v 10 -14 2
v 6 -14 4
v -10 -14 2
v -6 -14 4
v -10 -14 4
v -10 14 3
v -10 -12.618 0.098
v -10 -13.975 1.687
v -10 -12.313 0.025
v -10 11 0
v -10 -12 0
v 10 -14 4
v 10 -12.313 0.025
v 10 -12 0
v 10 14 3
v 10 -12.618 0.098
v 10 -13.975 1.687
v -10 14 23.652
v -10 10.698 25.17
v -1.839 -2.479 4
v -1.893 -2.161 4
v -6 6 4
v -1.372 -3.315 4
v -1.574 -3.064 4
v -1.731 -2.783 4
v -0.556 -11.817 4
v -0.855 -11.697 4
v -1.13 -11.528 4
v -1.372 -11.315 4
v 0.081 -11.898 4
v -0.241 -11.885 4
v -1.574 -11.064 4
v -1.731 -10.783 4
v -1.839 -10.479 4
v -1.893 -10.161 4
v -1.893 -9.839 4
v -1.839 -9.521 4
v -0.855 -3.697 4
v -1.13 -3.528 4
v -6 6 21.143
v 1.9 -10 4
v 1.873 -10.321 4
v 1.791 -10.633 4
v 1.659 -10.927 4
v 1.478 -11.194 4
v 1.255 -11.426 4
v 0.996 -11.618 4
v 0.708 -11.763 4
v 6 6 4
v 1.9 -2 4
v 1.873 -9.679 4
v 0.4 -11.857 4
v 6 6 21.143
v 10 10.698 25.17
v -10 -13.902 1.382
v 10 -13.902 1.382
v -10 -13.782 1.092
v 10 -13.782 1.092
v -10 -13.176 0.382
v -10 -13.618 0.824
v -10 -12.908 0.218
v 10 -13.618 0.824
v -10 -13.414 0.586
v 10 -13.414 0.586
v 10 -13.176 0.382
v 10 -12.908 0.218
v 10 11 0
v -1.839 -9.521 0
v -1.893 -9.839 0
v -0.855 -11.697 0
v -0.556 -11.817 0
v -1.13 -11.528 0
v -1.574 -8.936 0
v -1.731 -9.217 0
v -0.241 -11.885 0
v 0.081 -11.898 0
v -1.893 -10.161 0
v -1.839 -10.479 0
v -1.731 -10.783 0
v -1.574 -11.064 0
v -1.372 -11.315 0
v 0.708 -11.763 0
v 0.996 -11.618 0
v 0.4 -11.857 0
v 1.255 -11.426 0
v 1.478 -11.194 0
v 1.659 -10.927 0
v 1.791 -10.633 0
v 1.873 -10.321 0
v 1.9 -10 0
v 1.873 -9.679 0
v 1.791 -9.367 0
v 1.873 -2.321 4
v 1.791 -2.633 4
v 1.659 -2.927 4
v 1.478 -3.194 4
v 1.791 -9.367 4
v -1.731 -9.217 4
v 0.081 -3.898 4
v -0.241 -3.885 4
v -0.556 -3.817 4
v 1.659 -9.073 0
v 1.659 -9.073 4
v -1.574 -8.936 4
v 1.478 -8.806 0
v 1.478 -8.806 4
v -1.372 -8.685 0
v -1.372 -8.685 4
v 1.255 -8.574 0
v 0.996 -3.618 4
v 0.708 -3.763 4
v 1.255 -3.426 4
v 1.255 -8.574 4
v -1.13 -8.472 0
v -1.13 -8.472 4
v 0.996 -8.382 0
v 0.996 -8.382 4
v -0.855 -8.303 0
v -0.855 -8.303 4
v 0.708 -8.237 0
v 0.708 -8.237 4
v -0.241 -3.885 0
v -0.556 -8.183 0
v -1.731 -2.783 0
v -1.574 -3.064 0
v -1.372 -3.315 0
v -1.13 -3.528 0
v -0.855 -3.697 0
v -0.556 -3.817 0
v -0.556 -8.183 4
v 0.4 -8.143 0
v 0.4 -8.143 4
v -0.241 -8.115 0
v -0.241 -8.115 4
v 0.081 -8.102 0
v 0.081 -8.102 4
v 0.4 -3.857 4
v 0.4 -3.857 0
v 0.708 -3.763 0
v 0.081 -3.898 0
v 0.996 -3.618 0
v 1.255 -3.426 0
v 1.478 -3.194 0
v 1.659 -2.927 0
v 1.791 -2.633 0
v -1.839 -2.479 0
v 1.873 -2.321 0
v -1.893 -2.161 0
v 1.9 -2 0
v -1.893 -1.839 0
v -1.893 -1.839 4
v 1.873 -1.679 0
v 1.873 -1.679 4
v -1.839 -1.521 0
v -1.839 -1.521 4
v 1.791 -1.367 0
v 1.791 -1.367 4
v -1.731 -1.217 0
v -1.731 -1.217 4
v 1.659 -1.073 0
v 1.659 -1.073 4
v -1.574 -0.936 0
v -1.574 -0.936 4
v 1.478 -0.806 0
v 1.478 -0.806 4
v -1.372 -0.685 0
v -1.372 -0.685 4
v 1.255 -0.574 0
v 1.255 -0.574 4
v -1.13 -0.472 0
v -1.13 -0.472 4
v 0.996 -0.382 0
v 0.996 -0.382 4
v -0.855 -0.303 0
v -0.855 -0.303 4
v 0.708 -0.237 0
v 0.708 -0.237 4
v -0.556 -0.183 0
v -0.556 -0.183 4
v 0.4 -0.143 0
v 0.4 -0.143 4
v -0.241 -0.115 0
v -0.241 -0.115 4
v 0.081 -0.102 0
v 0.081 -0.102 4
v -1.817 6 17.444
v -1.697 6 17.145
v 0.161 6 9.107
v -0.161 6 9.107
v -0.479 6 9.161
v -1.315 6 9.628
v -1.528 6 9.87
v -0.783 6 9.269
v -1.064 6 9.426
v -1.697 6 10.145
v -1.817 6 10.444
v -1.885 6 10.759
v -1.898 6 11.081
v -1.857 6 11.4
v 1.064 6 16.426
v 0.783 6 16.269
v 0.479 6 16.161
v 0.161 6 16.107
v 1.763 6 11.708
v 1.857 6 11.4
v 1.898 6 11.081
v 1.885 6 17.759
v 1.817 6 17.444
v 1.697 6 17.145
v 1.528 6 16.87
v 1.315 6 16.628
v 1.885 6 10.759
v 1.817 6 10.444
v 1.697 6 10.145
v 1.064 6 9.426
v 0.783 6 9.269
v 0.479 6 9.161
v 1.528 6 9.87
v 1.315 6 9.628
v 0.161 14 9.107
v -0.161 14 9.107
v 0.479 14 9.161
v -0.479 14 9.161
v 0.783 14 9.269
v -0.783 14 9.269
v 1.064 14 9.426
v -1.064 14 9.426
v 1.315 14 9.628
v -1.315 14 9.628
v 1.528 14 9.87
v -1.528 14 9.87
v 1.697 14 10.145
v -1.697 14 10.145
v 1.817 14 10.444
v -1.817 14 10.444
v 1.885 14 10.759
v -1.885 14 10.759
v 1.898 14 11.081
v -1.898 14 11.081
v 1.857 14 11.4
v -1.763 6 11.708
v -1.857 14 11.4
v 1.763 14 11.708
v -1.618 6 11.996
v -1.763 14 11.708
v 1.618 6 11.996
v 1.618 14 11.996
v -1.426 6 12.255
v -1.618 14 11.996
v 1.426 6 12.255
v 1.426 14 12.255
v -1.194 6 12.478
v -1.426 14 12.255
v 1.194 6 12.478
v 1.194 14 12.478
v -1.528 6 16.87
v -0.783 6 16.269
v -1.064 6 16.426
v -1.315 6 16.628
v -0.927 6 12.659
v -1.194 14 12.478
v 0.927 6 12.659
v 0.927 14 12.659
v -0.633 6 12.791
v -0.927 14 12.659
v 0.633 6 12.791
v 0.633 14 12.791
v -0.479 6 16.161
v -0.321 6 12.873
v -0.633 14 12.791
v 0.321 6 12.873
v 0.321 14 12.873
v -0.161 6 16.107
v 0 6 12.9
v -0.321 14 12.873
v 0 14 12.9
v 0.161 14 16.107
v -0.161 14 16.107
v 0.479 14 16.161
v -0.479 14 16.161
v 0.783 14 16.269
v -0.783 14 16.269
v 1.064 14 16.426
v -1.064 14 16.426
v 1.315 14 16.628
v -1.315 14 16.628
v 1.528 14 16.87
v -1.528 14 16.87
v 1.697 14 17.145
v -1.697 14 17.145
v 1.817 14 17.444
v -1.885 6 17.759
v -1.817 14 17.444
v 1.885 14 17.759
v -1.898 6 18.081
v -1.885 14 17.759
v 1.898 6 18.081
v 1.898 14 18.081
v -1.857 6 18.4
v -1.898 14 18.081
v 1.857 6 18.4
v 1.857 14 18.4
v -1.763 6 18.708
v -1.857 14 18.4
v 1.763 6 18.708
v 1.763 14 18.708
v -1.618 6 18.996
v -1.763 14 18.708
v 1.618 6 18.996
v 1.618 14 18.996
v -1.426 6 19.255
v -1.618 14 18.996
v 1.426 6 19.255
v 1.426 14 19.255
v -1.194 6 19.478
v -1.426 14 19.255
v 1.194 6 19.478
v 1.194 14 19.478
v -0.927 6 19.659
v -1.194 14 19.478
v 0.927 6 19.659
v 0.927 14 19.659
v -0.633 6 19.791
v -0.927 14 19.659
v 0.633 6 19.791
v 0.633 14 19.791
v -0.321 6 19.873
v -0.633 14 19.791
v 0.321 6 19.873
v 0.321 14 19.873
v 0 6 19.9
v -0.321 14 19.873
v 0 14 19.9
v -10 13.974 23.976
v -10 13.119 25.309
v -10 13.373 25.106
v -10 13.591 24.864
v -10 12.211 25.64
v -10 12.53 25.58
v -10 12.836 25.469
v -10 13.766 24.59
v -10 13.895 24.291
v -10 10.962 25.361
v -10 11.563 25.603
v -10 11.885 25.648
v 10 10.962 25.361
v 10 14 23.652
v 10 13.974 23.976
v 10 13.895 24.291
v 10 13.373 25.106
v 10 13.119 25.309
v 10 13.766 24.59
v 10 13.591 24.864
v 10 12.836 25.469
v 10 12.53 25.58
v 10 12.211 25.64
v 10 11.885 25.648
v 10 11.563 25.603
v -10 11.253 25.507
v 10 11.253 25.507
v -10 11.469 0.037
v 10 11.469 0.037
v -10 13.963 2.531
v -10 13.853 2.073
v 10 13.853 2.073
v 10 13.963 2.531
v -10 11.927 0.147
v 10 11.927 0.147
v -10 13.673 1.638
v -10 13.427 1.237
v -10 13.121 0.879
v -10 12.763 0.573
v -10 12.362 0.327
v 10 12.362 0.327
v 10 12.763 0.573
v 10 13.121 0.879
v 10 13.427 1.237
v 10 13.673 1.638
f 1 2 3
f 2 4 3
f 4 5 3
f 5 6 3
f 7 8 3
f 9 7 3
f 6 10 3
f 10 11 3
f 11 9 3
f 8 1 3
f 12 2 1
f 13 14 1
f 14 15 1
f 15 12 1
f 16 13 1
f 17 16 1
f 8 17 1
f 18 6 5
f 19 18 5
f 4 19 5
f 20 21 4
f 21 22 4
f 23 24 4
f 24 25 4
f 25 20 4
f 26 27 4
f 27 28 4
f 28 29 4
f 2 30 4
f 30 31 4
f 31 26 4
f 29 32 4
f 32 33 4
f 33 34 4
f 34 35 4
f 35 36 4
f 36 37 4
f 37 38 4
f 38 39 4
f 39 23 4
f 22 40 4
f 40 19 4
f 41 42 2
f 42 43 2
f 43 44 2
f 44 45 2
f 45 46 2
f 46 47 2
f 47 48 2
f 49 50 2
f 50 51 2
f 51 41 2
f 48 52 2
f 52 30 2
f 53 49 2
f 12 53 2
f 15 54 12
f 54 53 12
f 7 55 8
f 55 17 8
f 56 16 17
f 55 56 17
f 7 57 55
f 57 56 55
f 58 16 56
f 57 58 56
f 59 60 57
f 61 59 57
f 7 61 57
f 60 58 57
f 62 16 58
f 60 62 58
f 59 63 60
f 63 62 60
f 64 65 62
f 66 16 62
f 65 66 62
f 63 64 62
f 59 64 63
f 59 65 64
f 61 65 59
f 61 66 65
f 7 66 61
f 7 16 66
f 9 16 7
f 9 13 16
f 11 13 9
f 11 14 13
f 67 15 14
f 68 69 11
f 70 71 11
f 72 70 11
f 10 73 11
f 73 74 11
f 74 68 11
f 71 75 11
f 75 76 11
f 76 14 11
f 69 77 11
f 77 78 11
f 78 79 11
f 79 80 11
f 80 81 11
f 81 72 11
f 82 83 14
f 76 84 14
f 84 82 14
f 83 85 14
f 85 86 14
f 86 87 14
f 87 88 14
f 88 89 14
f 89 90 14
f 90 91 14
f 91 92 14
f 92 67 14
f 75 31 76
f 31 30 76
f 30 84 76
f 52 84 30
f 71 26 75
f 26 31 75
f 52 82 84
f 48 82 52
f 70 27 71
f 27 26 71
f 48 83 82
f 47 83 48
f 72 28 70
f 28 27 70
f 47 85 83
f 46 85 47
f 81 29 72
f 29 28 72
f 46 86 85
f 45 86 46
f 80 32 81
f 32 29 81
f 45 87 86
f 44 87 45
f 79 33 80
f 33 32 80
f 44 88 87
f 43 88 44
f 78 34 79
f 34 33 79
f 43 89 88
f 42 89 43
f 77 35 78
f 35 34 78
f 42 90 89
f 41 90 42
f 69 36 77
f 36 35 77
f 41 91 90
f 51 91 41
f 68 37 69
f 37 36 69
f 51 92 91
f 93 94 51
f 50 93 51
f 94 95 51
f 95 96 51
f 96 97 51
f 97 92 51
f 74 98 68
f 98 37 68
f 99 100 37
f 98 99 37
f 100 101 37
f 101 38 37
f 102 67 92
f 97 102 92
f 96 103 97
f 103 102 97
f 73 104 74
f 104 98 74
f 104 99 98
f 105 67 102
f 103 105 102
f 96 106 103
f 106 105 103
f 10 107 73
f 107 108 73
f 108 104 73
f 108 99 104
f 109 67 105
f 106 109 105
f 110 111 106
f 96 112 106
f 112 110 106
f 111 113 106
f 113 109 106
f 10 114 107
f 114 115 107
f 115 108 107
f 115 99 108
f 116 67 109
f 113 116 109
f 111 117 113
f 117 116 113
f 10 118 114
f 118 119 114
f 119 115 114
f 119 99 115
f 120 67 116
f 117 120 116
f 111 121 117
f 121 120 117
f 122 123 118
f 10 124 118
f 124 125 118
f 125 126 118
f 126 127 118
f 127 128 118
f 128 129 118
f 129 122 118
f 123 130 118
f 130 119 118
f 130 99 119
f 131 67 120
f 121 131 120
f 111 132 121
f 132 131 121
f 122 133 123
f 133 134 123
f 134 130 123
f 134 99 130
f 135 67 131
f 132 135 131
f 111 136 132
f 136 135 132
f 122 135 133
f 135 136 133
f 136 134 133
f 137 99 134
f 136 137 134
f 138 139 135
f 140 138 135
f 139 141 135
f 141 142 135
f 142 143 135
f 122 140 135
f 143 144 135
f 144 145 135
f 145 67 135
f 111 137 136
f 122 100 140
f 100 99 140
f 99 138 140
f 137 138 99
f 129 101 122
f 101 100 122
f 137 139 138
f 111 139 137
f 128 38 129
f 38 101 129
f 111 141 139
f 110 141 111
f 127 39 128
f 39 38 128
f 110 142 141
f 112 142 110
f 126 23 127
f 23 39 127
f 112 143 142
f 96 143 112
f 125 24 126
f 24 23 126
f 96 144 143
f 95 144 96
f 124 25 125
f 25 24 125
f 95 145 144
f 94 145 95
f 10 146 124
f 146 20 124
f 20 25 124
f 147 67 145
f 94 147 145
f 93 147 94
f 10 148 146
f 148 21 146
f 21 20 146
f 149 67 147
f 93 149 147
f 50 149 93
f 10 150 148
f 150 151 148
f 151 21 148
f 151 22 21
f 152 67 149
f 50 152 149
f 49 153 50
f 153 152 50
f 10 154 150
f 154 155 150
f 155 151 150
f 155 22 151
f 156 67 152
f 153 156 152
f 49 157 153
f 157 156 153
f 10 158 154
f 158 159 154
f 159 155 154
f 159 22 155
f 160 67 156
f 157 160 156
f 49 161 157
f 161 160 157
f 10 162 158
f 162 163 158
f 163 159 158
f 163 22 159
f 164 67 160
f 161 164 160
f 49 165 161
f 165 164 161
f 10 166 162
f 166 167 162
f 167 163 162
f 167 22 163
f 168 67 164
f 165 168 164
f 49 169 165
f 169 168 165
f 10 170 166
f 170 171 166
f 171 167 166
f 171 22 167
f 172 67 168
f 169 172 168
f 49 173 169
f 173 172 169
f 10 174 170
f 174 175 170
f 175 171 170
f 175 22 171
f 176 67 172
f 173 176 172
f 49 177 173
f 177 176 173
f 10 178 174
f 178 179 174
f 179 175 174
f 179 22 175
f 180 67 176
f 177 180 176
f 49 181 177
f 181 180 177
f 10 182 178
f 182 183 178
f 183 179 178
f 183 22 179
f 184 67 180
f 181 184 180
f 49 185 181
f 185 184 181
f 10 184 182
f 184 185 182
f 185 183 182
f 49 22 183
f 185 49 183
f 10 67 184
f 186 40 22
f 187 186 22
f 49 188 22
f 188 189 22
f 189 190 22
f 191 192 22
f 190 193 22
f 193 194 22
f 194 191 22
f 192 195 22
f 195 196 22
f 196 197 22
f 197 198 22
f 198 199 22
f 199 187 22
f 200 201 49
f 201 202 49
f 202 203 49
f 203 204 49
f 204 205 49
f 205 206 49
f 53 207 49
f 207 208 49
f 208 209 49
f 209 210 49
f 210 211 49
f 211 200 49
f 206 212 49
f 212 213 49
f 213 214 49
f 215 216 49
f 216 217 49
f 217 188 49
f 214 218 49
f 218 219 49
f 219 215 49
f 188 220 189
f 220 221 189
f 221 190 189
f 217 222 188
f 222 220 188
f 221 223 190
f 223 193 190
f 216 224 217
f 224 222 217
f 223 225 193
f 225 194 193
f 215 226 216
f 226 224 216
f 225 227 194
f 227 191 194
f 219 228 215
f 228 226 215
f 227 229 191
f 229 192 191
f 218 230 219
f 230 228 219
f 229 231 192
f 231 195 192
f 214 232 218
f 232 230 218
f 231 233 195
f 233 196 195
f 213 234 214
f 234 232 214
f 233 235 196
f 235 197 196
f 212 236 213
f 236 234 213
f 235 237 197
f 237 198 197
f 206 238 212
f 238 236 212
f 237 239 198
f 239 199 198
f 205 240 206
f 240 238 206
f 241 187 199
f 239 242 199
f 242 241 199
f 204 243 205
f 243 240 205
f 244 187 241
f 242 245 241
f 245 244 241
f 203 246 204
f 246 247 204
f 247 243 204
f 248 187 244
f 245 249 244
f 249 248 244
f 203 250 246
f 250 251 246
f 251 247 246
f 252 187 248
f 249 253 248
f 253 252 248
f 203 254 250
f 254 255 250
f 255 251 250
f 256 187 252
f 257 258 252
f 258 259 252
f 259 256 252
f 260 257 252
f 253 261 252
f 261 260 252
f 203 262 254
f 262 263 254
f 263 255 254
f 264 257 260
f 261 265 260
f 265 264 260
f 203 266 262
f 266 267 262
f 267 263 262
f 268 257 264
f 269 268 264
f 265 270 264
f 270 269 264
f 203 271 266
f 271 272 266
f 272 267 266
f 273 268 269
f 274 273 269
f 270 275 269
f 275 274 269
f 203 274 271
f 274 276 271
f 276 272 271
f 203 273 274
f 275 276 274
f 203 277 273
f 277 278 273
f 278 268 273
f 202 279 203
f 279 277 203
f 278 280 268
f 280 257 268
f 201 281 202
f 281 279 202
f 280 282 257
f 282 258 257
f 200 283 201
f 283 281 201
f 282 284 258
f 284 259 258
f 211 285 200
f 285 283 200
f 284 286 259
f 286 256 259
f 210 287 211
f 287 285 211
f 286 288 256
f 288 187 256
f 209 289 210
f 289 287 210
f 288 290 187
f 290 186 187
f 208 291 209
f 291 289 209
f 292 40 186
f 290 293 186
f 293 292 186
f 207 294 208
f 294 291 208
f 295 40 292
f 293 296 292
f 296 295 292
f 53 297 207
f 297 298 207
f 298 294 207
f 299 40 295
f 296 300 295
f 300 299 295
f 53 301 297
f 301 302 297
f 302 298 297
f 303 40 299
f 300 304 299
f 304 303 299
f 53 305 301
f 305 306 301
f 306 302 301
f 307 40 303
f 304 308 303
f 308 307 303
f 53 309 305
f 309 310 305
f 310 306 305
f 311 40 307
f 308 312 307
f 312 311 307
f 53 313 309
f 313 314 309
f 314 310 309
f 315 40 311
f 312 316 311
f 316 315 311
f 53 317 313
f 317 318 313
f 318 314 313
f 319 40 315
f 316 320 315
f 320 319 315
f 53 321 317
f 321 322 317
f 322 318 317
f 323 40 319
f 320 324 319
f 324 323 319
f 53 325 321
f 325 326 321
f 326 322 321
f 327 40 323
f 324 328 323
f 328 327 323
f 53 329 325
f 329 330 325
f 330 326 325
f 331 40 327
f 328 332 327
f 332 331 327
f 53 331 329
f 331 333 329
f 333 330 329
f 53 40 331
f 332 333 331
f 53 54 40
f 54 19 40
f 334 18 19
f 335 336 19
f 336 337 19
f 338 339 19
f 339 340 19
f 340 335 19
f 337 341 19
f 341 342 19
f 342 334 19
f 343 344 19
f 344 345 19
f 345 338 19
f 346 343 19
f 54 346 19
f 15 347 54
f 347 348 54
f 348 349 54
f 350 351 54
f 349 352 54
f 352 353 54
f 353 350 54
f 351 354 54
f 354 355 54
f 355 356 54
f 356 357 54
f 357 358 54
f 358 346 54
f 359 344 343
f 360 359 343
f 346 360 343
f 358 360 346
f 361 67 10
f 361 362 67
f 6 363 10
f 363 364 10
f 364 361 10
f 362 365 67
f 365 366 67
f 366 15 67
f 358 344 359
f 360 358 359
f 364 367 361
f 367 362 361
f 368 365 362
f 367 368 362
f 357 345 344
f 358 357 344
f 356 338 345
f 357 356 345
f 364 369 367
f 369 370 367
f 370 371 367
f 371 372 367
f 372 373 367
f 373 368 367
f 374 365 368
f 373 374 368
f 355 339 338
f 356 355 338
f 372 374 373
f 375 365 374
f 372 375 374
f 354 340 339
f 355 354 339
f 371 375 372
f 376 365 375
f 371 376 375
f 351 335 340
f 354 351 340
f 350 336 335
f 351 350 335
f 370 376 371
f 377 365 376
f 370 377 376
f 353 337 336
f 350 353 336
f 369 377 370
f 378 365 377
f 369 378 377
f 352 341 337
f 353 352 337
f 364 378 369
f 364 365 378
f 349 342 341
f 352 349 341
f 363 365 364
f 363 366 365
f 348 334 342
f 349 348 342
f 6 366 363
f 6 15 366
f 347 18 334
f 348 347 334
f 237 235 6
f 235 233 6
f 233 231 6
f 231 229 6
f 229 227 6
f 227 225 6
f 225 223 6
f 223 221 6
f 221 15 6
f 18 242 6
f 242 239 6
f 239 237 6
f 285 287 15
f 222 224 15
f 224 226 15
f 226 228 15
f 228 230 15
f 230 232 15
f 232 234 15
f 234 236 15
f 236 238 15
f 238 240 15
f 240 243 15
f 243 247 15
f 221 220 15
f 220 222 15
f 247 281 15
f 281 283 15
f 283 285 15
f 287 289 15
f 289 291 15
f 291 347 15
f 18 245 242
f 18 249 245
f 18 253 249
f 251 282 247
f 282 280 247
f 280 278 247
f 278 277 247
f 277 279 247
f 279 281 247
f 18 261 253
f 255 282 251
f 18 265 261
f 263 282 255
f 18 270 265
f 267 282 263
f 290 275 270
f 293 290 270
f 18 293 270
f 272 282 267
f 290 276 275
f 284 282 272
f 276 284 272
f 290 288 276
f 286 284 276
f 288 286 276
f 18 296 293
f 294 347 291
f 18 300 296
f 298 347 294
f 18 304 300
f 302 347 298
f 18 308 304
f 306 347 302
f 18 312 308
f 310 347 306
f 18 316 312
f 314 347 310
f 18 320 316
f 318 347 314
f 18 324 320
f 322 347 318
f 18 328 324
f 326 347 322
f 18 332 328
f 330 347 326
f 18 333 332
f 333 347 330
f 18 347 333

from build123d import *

# Parameters (mm, degrees)
SKETCH1_W               = 20
SKETCH1_H               = 28
BOSS_EXTRUDE1_DEPTH     = 28
SKETCH2_W               = 24
SKETCH2_H               = 20
CUT_EXTRUDE1_DEPTH      = 6
CUT_EXTRUDE1_DEPTH_BACK = 6
CUT_EXTRUDE2_DEPTH      = 20
FILLET1_R               = 2
SKETCH4_R               = 1.9
CUT_EXTRUDE3_DEPTH      = 10
SKETCH5_R               = 1.9
CUT_EXTRUDE4_DEPTH      = 5
FILLET2_R               = 2
FILLET3_R               = 3


with BuildPart() as part:
    # Sketch1 → Boss-Extrude1 (new body)
    with BuildSketch(Plane.XY):
        Rectangle(SKETCH1_W, SKETCH1_H)
    extrude(amount=BOSS_EXTRUDE1_DEPTH)

    # Sketch2 → Cut-Extrude1 (cut, two sides)
    with BuildSketch(Plane.ZY) as cut_extrude1_sk:
        with Locations((16, -4)):
            Rectangle(SKETCH2_W, SKETCH2_H)
    extrude(amount=CUT_EXTRUDE1_DEPTH, mode=Mode.SUBTRACT)
    extrude(cut_extrude1_sk.sketch, amount=-CUT_EXTRUDE1_DEPTH_BACK, mode=Mode.SUBTRACT)

    # Sketch3 → Cut-Extrude2 (cut)
    with BuildSketch(Plane.ZY.offset(10)):
        Polygon((28, 14), (4, -14), (28, -14), align=None)
    extrude(amount=-CUT_EXTRUDE2_DEPTH, mode=Mode.SUBTRACT)

    # Fillet1
    fillet1_edges = [part.edges().sort_by_distance(p)[0] for p in [
        (0, 14, 28),
    ]]
    fillet(fillet1_edges, radius=FILLET1_R)

    # Sketch4 → Cut-Extrude3 (cut)
    with BuildSketch(Plane(origin=(0, 14, 0), x_dir=(1, 0, 0), z_dir=(0, 1, 0))):
        with Locations((0, -11)):
            Circle(SKETCH4_R)
        with Locations((0, -18)):
            Circle(SKETCH4_R)
    extrude(amount=-CUT_EXTRUDE3_DEPTH, mode=Mode.SUBTRACT)

    # Sketch5 → Cut-Extrude4 (cut, through all)
    with BuildSketch(Plane.XY.offset(4)):
        with Locations((0, -2)):
            Circle(SKETCH5_R)
        with Locations((0, -10)):
            Circle(SKETCH5_R)
    extrude(amount=-CUT_EXTRUDE4_DEPTH, mode=Mode.SUBTRACT)

    # Fillet2
    fillet2_edges = [part.edges().sort_by_distance(p)[0] for p in [
        (0, -14, 0),
    ]]
    fillet(fillet2_edges, radius=FILLET2_R)

    # Fillet3
    fillet3_edges = [part.edges().sort_by_distance(p)[0] for p in [
        (0, 14, 0),
    ]]
    fillet(fillet3_edges, radius=FILLET3_R)


solid = part.part
